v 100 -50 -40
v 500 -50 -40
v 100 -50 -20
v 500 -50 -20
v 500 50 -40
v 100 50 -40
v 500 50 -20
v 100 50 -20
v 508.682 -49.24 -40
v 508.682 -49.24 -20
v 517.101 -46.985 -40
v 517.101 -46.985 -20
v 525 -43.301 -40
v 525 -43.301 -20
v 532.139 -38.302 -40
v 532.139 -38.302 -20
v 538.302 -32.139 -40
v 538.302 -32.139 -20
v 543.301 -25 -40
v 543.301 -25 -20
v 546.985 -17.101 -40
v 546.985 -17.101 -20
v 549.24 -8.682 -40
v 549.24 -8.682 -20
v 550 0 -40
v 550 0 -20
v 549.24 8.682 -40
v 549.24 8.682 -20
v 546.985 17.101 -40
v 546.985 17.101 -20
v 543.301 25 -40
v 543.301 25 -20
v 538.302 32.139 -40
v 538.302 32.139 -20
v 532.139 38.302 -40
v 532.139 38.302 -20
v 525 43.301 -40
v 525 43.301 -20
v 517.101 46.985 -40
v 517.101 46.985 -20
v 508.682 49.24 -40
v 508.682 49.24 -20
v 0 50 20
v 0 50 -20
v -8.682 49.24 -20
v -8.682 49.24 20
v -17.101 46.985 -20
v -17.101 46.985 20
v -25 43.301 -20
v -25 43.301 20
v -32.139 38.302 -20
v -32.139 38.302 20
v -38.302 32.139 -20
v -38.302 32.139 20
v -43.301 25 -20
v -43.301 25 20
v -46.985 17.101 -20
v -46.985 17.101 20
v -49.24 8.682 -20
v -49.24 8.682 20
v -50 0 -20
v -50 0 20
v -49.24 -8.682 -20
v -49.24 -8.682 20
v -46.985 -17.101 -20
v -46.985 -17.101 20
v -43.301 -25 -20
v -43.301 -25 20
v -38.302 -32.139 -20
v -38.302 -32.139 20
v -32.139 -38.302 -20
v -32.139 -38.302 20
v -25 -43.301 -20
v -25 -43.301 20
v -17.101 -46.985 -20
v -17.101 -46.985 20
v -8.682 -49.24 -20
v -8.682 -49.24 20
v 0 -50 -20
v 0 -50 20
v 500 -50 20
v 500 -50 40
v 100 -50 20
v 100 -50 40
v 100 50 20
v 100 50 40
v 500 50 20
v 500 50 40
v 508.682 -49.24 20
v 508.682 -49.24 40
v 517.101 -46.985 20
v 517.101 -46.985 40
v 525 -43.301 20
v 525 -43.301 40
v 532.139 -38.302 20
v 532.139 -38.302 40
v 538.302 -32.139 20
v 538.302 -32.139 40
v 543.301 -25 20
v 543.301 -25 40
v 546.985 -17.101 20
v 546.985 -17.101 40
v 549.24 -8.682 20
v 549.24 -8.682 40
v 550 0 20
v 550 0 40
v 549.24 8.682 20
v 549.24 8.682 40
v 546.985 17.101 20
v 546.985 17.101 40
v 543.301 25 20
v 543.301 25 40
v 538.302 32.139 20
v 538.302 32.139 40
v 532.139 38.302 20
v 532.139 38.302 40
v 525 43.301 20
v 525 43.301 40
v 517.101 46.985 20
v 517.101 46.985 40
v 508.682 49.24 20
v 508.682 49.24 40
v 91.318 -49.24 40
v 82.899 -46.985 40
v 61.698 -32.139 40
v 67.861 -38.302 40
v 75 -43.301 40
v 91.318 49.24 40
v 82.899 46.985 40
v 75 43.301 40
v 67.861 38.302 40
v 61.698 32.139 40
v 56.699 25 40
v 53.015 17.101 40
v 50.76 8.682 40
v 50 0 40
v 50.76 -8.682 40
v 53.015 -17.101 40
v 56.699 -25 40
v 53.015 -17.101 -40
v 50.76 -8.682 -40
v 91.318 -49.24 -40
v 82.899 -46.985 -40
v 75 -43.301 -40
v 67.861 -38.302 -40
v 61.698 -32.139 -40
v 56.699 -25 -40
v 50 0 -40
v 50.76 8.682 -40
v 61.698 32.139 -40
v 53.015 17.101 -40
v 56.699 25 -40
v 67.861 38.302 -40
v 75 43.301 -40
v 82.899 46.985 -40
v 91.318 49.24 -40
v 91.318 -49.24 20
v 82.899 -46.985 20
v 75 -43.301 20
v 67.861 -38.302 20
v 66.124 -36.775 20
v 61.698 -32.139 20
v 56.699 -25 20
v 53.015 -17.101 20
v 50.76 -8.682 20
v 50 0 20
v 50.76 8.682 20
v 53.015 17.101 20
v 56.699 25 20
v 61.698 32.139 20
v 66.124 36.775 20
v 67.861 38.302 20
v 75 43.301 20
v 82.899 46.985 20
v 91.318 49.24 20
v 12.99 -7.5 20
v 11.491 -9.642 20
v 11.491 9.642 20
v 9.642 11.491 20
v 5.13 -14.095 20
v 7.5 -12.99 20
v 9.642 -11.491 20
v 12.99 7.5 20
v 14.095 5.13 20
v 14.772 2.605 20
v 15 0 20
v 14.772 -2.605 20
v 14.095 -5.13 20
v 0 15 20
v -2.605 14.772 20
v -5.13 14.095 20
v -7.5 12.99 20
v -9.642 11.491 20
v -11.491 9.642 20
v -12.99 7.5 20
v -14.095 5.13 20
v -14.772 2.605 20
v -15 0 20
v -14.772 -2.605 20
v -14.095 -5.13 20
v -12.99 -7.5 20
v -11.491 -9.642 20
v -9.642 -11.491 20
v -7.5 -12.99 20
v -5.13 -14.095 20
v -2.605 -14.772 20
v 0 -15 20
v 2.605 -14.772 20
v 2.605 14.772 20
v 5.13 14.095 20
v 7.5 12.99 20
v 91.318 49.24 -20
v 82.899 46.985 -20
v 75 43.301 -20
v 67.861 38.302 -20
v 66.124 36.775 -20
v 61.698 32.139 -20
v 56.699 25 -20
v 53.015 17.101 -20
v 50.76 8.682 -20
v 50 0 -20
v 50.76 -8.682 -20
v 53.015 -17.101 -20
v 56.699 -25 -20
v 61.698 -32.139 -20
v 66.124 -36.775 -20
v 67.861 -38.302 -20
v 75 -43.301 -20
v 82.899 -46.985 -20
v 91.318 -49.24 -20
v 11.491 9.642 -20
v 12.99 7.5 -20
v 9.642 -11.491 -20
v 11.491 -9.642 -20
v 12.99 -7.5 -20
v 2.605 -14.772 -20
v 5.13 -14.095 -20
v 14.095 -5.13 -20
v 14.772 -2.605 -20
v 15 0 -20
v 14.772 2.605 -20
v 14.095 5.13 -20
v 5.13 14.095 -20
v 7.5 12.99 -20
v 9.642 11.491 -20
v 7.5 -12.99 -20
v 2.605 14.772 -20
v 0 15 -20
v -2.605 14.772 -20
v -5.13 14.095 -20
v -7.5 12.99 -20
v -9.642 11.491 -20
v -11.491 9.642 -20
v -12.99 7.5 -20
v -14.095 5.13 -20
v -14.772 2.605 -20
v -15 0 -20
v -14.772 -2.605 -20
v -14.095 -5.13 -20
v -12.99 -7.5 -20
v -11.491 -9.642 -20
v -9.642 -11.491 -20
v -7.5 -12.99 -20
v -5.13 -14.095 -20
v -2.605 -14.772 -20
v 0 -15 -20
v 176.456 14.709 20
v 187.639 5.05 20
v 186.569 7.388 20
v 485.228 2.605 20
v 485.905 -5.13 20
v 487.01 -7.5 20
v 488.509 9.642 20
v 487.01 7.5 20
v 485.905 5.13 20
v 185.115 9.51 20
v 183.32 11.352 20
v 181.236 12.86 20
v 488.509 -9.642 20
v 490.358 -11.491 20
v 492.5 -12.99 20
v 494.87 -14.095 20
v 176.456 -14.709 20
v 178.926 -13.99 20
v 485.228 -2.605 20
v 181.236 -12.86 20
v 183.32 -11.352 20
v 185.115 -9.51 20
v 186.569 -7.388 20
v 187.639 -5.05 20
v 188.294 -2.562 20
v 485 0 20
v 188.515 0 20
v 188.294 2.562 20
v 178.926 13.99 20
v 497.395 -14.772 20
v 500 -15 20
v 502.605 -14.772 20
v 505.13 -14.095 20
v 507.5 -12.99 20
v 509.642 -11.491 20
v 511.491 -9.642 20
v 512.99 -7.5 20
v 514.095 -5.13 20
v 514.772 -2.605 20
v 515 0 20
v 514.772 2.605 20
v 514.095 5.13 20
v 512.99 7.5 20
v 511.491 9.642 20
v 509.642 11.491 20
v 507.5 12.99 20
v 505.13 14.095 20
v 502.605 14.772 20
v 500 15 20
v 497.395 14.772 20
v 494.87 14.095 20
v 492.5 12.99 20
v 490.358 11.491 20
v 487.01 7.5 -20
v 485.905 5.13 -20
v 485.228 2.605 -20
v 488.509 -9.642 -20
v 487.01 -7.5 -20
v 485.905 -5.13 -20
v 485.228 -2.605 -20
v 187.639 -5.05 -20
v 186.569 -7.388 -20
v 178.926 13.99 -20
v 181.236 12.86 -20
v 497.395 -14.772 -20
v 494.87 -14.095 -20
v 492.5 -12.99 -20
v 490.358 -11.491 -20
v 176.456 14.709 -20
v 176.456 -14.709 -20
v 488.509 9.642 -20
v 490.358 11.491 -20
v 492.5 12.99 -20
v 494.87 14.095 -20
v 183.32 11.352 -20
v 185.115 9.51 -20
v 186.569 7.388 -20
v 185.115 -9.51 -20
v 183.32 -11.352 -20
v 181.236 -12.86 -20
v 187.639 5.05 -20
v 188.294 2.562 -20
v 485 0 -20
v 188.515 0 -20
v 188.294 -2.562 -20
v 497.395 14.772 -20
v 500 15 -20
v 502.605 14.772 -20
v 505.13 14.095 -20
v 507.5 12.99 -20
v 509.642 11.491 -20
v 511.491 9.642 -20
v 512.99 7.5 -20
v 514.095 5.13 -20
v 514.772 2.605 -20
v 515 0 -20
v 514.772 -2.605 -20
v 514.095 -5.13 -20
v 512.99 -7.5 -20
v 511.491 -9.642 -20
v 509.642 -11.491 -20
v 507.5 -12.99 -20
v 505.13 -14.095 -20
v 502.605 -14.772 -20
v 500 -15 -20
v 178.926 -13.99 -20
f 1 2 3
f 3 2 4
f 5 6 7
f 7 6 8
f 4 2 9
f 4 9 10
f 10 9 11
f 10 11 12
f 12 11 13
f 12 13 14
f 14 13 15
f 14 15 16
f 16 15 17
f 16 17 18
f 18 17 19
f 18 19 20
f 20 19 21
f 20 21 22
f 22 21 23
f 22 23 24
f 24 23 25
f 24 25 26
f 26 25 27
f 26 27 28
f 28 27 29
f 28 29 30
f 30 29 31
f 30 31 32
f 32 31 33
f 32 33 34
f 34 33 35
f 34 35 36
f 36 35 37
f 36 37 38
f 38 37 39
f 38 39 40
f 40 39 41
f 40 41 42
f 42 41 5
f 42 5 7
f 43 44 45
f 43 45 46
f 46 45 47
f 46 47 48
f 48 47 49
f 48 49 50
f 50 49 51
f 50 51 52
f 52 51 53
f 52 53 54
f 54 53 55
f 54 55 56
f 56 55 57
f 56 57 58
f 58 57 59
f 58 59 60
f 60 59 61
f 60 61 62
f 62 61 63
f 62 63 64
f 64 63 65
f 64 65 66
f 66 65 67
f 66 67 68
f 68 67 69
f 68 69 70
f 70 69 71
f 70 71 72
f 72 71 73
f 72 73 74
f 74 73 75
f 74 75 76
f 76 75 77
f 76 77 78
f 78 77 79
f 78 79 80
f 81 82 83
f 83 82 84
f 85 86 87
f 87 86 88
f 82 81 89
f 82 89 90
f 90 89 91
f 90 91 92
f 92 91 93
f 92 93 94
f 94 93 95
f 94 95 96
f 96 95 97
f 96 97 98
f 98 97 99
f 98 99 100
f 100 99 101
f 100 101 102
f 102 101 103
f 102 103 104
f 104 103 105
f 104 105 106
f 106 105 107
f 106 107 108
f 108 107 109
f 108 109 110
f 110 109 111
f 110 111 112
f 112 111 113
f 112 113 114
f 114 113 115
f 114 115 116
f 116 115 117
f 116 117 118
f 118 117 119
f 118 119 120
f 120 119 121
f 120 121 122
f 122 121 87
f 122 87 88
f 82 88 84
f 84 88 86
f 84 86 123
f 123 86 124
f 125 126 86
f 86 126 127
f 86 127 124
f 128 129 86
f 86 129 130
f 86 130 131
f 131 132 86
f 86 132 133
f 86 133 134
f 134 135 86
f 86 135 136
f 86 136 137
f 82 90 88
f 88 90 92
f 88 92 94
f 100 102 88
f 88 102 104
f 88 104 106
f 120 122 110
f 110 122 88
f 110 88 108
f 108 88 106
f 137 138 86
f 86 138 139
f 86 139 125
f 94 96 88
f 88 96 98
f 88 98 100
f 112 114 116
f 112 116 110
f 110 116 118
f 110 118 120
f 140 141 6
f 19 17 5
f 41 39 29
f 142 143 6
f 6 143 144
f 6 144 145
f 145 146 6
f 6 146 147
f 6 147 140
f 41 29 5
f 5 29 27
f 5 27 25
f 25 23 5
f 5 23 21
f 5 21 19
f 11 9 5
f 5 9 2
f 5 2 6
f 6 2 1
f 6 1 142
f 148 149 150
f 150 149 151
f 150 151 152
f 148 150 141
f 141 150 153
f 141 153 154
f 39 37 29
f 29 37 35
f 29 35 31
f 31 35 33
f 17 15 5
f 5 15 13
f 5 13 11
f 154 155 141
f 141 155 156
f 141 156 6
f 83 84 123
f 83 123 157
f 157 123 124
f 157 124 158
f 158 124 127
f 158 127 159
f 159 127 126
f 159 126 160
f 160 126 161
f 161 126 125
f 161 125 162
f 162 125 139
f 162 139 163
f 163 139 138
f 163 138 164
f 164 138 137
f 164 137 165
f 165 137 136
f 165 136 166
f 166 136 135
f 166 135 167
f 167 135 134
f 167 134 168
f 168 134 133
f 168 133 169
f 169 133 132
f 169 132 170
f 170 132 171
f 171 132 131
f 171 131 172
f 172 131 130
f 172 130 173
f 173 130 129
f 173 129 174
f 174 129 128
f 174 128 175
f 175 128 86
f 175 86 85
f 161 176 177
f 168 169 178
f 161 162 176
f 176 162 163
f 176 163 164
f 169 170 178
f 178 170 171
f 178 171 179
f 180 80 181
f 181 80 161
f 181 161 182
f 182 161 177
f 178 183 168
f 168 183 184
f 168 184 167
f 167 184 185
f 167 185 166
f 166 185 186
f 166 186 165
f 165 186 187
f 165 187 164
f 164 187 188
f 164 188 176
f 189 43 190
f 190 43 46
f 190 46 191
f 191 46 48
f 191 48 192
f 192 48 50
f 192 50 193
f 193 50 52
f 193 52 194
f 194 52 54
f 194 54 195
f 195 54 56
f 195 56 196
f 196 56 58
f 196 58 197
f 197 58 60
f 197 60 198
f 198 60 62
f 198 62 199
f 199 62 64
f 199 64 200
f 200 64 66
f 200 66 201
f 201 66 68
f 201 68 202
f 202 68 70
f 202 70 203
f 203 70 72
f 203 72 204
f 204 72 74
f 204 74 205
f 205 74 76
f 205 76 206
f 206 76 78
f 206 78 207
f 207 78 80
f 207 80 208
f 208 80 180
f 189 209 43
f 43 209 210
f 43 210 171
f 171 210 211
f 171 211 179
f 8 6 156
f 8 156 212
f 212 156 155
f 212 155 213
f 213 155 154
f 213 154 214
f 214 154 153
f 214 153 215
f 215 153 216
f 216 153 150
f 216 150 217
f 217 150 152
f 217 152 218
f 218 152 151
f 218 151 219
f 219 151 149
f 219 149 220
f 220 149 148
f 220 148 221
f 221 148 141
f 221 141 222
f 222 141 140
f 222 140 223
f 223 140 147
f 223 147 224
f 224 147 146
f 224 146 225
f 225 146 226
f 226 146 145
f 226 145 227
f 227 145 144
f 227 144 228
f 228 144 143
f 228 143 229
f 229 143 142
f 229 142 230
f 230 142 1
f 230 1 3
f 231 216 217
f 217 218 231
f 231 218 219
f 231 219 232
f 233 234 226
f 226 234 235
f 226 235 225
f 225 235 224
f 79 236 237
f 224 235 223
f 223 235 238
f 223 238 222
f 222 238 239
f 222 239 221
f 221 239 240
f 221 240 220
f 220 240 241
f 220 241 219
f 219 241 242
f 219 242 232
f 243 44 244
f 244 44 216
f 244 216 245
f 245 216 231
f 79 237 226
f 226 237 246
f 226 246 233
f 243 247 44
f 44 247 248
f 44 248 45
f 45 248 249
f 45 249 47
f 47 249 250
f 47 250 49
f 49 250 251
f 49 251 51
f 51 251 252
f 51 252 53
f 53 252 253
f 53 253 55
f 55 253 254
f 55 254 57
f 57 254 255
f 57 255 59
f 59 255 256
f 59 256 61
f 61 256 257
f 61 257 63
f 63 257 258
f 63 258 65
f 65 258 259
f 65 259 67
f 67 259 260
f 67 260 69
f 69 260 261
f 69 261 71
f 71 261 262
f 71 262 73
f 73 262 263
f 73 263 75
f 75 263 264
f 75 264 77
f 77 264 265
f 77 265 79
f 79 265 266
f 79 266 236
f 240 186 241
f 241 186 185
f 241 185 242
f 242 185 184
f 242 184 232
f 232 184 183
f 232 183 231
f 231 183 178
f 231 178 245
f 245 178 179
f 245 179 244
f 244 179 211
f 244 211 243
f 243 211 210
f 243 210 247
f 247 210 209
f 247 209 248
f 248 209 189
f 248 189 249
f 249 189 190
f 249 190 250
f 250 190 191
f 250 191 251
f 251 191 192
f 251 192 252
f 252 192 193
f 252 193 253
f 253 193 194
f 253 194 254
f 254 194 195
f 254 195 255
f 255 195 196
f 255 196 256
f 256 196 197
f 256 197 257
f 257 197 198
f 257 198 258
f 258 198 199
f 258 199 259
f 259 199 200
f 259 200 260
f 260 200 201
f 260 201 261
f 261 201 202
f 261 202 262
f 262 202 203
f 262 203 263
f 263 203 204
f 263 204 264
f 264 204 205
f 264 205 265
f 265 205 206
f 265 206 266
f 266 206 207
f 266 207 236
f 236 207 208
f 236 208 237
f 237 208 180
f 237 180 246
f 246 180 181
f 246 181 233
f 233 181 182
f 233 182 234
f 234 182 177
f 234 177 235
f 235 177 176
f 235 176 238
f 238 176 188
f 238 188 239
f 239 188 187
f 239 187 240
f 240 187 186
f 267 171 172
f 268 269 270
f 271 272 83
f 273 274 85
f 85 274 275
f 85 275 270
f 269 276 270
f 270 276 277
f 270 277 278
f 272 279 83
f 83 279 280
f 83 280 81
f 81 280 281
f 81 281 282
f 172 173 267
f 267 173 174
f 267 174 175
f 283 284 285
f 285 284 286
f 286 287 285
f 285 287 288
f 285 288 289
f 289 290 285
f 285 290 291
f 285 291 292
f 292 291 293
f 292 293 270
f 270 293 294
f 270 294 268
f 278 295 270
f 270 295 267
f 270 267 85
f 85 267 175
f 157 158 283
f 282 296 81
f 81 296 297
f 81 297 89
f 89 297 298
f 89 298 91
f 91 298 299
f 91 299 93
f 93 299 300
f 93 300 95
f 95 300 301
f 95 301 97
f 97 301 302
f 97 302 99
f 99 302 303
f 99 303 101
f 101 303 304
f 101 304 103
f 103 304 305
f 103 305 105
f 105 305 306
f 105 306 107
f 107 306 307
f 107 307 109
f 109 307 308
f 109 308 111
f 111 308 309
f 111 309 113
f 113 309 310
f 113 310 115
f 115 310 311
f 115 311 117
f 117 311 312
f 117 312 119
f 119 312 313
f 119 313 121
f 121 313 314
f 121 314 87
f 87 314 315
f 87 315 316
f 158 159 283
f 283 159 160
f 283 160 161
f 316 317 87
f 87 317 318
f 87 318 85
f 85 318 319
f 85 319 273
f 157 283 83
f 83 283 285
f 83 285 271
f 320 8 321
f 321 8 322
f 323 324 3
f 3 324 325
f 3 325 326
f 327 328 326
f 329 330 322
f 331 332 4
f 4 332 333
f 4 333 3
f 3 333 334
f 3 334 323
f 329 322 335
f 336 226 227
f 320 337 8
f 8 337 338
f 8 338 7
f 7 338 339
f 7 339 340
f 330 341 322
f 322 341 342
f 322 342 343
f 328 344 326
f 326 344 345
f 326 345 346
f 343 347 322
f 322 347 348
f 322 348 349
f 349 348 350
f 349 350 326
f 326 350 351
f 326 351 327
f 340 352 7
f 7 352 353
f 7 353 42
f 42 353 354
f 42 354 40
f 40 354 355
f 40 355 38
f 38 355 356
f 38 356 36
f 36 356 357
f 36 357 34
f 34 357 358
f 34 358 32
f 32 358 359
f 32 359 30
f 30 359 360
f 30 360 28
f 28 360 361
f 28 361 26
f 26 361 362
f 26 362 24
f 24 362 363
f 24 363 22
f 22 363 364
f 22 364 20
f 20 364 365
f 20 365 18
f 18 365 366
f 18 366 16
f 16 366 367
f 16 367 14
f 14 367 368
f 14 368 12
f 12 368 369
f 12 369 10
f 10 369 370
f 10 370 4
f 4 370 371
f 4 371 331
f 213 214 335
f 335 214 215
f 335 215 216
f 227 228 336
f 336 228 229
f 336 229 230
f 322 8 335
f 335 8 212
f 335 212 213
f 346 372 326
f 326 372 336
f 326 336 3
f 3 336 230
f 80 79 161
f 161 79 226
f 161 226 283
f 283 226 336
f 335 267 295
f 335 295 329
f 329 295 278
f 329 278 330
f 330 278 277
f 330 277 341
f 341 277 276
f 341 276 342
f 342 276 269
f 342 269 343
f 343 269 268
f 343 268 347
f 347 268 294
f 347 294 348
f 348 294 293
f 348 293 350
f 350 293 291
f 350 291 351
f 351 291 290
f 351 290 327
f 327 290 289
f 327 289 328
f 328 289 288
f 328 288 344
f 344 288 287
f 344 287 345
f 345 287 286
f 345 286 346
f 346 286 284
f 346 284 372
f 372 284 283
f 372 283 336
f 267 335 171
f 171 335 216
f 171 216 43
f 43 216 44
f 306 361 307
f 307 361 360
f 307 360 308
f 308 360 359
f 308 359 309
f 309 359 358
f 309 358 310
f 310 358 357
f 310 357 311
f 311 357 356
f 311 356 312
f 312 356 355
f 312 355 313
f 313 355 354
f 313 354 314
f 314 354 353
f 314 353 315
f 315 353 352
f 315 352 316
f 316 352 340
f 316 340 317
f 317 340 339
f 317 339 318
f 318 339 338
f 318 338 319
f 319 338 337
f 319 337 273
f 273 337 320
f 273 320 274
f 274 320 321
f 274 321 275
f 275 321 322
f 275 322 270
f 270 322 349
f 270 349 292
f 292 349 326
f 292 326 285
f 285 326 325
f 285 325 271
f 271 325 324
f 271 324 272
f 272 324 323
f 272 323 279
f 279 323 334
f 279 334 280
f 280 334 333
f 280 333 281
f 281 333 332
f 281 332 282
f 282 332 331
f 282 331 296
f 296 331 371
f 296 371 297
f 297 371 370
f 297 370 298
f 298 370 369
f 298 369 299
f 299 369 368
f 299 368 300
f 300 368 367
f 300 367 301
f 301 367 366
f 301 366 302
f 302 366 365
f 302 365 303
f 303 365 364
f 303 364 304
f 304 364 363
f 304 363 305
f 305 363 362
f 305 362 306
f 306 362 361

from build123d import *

# Parameters (mm, degrees)
BOSS_EXTRUDE2_DEPTH = 40
CUT_EXTRUDE2_DEPTH  = 20
CUT_EXTRUDE3_START  = -20
CUT_EXTRUDE3_DEPTH  = 20
SKETCH9_R           = 15
CUT_EXTRUDE5_DEPTH  = 40
CUT_EXTRUDE6_DEPTH  = 20
SKETCH13_R          = 15
BOSS_EXTRUDE4_DEPTH = 60
SKETCH11_R          = 15
BOSS_EXTRUDE3_DEPTH = 80


with BuildPart() as part:
    # Sketch4 → Boss-Extrude2 (new, symmetric)
    with BuildSketch(Plane.XY):
        with BuildLine():
            Line((-250, 50), (250, 50))
            ThreePointArc((250, 50), (300, 0), (250, -50))
            Line((250, -50), (-250, -50))
            ThreePointArc((-250, -50), (-300, 0), (-250, 50))
        make_face()
    extrude(amount=BOSS_EXTRUDE2_DEPTH, both=True)

    # Sketch5 → Cut-Extrude2 (cut)
    with BuildSketch(Plane.XY.offset(40)):
        with BuildLine():
            Line((-150, 50), (-250, 50))
            ThreePointArc((-250, 50), (-300, 0), (-250, -50))
            Line((-250, -50), (-150, -50))
            ThreePointArc((-150, -50), (-200, 0), (-150, 50))
        make_face()
    extrude(amount=-CUT_EXTRUDE2_DEPTH, mode=Mode.SUBTRACT)

    # Sketch6 → Cut-Extrude3 (cut)
    with BuildSketch(Plane(origin=(0, 0, -40), x_dir=(-1, 0, 0), z_dir=(0, 0, -1)).offset(CUT_EXTRUDE3_START)):
        with BuildLine():
            Line((150, 50), (250, 50))
            ThreePointArc((250, 50), (300, 0), (250, -50))
            Line((250, -50), (150, -50))
            ThreePointArc((150, -50), (200, 0), (150, 50))
        make_face()
    extrude(amount=CUT_EXTRUDE3_DEPTH, mode=Mode.SUBTRACT)

    # Sketch9 → Cut-Extrude5 (cut)
    with BuildSketch(Plane.XY.offset(20)):
        with Locations((-250, 0)):
            Circle(SKETCH9_R)
    extrude(amount=-CUT_EXTRUDE5_DEPTH, mode=Mode.SUBTRACT)

    # Sketch10 → Cut-Extrude6 (cut, symmetric)
    with BuildSketch(Plane.XY):
        with BuildLine():
            Line((-250, 50), (-73.543550677, 14.708710135))
            ThreePointArc((-73.543550677, 14.708710135), (-61.485292704, 0), (-73.543550677, -14.708710135))
            Line((-73.543550677, -14.708710135), (-250, -50))
            Line((-250, -50), (250, -50))
            ThreePointArc((250, -50), (300, 0), (250, 50))
            Line((250, 50), (-250, 50))
        make_face()
    extrude(amount=CUT_EXTRUDE6_DEPTH, both=True, mode=Mode.SUBTRACT)

    # Sketch13 → Boss-Extrude4 (add)
    with BuildSketch(Plane.XY.offset(40)):
        with Locations((250, 0)):
            Circle(SKETCH13_R)
    extrude(amount=-BOSS_EXTRUDE4_DEPTH)

    # Sketch11 → Boss-Extrude3 (add)
    with BuildSketch(Plane.XY.offset(40)):
        with Locations((250, 0)):
            Circle(SKETCH11_R)
    extrude(amount=-BOSS_EXTRUDE3_DEPTH)


with BuildPart() as part_1:
    # Body-Move/Copy1: moved
    add(part.part.moved(Location((250, 0, 0))))


solid = part_1.part
